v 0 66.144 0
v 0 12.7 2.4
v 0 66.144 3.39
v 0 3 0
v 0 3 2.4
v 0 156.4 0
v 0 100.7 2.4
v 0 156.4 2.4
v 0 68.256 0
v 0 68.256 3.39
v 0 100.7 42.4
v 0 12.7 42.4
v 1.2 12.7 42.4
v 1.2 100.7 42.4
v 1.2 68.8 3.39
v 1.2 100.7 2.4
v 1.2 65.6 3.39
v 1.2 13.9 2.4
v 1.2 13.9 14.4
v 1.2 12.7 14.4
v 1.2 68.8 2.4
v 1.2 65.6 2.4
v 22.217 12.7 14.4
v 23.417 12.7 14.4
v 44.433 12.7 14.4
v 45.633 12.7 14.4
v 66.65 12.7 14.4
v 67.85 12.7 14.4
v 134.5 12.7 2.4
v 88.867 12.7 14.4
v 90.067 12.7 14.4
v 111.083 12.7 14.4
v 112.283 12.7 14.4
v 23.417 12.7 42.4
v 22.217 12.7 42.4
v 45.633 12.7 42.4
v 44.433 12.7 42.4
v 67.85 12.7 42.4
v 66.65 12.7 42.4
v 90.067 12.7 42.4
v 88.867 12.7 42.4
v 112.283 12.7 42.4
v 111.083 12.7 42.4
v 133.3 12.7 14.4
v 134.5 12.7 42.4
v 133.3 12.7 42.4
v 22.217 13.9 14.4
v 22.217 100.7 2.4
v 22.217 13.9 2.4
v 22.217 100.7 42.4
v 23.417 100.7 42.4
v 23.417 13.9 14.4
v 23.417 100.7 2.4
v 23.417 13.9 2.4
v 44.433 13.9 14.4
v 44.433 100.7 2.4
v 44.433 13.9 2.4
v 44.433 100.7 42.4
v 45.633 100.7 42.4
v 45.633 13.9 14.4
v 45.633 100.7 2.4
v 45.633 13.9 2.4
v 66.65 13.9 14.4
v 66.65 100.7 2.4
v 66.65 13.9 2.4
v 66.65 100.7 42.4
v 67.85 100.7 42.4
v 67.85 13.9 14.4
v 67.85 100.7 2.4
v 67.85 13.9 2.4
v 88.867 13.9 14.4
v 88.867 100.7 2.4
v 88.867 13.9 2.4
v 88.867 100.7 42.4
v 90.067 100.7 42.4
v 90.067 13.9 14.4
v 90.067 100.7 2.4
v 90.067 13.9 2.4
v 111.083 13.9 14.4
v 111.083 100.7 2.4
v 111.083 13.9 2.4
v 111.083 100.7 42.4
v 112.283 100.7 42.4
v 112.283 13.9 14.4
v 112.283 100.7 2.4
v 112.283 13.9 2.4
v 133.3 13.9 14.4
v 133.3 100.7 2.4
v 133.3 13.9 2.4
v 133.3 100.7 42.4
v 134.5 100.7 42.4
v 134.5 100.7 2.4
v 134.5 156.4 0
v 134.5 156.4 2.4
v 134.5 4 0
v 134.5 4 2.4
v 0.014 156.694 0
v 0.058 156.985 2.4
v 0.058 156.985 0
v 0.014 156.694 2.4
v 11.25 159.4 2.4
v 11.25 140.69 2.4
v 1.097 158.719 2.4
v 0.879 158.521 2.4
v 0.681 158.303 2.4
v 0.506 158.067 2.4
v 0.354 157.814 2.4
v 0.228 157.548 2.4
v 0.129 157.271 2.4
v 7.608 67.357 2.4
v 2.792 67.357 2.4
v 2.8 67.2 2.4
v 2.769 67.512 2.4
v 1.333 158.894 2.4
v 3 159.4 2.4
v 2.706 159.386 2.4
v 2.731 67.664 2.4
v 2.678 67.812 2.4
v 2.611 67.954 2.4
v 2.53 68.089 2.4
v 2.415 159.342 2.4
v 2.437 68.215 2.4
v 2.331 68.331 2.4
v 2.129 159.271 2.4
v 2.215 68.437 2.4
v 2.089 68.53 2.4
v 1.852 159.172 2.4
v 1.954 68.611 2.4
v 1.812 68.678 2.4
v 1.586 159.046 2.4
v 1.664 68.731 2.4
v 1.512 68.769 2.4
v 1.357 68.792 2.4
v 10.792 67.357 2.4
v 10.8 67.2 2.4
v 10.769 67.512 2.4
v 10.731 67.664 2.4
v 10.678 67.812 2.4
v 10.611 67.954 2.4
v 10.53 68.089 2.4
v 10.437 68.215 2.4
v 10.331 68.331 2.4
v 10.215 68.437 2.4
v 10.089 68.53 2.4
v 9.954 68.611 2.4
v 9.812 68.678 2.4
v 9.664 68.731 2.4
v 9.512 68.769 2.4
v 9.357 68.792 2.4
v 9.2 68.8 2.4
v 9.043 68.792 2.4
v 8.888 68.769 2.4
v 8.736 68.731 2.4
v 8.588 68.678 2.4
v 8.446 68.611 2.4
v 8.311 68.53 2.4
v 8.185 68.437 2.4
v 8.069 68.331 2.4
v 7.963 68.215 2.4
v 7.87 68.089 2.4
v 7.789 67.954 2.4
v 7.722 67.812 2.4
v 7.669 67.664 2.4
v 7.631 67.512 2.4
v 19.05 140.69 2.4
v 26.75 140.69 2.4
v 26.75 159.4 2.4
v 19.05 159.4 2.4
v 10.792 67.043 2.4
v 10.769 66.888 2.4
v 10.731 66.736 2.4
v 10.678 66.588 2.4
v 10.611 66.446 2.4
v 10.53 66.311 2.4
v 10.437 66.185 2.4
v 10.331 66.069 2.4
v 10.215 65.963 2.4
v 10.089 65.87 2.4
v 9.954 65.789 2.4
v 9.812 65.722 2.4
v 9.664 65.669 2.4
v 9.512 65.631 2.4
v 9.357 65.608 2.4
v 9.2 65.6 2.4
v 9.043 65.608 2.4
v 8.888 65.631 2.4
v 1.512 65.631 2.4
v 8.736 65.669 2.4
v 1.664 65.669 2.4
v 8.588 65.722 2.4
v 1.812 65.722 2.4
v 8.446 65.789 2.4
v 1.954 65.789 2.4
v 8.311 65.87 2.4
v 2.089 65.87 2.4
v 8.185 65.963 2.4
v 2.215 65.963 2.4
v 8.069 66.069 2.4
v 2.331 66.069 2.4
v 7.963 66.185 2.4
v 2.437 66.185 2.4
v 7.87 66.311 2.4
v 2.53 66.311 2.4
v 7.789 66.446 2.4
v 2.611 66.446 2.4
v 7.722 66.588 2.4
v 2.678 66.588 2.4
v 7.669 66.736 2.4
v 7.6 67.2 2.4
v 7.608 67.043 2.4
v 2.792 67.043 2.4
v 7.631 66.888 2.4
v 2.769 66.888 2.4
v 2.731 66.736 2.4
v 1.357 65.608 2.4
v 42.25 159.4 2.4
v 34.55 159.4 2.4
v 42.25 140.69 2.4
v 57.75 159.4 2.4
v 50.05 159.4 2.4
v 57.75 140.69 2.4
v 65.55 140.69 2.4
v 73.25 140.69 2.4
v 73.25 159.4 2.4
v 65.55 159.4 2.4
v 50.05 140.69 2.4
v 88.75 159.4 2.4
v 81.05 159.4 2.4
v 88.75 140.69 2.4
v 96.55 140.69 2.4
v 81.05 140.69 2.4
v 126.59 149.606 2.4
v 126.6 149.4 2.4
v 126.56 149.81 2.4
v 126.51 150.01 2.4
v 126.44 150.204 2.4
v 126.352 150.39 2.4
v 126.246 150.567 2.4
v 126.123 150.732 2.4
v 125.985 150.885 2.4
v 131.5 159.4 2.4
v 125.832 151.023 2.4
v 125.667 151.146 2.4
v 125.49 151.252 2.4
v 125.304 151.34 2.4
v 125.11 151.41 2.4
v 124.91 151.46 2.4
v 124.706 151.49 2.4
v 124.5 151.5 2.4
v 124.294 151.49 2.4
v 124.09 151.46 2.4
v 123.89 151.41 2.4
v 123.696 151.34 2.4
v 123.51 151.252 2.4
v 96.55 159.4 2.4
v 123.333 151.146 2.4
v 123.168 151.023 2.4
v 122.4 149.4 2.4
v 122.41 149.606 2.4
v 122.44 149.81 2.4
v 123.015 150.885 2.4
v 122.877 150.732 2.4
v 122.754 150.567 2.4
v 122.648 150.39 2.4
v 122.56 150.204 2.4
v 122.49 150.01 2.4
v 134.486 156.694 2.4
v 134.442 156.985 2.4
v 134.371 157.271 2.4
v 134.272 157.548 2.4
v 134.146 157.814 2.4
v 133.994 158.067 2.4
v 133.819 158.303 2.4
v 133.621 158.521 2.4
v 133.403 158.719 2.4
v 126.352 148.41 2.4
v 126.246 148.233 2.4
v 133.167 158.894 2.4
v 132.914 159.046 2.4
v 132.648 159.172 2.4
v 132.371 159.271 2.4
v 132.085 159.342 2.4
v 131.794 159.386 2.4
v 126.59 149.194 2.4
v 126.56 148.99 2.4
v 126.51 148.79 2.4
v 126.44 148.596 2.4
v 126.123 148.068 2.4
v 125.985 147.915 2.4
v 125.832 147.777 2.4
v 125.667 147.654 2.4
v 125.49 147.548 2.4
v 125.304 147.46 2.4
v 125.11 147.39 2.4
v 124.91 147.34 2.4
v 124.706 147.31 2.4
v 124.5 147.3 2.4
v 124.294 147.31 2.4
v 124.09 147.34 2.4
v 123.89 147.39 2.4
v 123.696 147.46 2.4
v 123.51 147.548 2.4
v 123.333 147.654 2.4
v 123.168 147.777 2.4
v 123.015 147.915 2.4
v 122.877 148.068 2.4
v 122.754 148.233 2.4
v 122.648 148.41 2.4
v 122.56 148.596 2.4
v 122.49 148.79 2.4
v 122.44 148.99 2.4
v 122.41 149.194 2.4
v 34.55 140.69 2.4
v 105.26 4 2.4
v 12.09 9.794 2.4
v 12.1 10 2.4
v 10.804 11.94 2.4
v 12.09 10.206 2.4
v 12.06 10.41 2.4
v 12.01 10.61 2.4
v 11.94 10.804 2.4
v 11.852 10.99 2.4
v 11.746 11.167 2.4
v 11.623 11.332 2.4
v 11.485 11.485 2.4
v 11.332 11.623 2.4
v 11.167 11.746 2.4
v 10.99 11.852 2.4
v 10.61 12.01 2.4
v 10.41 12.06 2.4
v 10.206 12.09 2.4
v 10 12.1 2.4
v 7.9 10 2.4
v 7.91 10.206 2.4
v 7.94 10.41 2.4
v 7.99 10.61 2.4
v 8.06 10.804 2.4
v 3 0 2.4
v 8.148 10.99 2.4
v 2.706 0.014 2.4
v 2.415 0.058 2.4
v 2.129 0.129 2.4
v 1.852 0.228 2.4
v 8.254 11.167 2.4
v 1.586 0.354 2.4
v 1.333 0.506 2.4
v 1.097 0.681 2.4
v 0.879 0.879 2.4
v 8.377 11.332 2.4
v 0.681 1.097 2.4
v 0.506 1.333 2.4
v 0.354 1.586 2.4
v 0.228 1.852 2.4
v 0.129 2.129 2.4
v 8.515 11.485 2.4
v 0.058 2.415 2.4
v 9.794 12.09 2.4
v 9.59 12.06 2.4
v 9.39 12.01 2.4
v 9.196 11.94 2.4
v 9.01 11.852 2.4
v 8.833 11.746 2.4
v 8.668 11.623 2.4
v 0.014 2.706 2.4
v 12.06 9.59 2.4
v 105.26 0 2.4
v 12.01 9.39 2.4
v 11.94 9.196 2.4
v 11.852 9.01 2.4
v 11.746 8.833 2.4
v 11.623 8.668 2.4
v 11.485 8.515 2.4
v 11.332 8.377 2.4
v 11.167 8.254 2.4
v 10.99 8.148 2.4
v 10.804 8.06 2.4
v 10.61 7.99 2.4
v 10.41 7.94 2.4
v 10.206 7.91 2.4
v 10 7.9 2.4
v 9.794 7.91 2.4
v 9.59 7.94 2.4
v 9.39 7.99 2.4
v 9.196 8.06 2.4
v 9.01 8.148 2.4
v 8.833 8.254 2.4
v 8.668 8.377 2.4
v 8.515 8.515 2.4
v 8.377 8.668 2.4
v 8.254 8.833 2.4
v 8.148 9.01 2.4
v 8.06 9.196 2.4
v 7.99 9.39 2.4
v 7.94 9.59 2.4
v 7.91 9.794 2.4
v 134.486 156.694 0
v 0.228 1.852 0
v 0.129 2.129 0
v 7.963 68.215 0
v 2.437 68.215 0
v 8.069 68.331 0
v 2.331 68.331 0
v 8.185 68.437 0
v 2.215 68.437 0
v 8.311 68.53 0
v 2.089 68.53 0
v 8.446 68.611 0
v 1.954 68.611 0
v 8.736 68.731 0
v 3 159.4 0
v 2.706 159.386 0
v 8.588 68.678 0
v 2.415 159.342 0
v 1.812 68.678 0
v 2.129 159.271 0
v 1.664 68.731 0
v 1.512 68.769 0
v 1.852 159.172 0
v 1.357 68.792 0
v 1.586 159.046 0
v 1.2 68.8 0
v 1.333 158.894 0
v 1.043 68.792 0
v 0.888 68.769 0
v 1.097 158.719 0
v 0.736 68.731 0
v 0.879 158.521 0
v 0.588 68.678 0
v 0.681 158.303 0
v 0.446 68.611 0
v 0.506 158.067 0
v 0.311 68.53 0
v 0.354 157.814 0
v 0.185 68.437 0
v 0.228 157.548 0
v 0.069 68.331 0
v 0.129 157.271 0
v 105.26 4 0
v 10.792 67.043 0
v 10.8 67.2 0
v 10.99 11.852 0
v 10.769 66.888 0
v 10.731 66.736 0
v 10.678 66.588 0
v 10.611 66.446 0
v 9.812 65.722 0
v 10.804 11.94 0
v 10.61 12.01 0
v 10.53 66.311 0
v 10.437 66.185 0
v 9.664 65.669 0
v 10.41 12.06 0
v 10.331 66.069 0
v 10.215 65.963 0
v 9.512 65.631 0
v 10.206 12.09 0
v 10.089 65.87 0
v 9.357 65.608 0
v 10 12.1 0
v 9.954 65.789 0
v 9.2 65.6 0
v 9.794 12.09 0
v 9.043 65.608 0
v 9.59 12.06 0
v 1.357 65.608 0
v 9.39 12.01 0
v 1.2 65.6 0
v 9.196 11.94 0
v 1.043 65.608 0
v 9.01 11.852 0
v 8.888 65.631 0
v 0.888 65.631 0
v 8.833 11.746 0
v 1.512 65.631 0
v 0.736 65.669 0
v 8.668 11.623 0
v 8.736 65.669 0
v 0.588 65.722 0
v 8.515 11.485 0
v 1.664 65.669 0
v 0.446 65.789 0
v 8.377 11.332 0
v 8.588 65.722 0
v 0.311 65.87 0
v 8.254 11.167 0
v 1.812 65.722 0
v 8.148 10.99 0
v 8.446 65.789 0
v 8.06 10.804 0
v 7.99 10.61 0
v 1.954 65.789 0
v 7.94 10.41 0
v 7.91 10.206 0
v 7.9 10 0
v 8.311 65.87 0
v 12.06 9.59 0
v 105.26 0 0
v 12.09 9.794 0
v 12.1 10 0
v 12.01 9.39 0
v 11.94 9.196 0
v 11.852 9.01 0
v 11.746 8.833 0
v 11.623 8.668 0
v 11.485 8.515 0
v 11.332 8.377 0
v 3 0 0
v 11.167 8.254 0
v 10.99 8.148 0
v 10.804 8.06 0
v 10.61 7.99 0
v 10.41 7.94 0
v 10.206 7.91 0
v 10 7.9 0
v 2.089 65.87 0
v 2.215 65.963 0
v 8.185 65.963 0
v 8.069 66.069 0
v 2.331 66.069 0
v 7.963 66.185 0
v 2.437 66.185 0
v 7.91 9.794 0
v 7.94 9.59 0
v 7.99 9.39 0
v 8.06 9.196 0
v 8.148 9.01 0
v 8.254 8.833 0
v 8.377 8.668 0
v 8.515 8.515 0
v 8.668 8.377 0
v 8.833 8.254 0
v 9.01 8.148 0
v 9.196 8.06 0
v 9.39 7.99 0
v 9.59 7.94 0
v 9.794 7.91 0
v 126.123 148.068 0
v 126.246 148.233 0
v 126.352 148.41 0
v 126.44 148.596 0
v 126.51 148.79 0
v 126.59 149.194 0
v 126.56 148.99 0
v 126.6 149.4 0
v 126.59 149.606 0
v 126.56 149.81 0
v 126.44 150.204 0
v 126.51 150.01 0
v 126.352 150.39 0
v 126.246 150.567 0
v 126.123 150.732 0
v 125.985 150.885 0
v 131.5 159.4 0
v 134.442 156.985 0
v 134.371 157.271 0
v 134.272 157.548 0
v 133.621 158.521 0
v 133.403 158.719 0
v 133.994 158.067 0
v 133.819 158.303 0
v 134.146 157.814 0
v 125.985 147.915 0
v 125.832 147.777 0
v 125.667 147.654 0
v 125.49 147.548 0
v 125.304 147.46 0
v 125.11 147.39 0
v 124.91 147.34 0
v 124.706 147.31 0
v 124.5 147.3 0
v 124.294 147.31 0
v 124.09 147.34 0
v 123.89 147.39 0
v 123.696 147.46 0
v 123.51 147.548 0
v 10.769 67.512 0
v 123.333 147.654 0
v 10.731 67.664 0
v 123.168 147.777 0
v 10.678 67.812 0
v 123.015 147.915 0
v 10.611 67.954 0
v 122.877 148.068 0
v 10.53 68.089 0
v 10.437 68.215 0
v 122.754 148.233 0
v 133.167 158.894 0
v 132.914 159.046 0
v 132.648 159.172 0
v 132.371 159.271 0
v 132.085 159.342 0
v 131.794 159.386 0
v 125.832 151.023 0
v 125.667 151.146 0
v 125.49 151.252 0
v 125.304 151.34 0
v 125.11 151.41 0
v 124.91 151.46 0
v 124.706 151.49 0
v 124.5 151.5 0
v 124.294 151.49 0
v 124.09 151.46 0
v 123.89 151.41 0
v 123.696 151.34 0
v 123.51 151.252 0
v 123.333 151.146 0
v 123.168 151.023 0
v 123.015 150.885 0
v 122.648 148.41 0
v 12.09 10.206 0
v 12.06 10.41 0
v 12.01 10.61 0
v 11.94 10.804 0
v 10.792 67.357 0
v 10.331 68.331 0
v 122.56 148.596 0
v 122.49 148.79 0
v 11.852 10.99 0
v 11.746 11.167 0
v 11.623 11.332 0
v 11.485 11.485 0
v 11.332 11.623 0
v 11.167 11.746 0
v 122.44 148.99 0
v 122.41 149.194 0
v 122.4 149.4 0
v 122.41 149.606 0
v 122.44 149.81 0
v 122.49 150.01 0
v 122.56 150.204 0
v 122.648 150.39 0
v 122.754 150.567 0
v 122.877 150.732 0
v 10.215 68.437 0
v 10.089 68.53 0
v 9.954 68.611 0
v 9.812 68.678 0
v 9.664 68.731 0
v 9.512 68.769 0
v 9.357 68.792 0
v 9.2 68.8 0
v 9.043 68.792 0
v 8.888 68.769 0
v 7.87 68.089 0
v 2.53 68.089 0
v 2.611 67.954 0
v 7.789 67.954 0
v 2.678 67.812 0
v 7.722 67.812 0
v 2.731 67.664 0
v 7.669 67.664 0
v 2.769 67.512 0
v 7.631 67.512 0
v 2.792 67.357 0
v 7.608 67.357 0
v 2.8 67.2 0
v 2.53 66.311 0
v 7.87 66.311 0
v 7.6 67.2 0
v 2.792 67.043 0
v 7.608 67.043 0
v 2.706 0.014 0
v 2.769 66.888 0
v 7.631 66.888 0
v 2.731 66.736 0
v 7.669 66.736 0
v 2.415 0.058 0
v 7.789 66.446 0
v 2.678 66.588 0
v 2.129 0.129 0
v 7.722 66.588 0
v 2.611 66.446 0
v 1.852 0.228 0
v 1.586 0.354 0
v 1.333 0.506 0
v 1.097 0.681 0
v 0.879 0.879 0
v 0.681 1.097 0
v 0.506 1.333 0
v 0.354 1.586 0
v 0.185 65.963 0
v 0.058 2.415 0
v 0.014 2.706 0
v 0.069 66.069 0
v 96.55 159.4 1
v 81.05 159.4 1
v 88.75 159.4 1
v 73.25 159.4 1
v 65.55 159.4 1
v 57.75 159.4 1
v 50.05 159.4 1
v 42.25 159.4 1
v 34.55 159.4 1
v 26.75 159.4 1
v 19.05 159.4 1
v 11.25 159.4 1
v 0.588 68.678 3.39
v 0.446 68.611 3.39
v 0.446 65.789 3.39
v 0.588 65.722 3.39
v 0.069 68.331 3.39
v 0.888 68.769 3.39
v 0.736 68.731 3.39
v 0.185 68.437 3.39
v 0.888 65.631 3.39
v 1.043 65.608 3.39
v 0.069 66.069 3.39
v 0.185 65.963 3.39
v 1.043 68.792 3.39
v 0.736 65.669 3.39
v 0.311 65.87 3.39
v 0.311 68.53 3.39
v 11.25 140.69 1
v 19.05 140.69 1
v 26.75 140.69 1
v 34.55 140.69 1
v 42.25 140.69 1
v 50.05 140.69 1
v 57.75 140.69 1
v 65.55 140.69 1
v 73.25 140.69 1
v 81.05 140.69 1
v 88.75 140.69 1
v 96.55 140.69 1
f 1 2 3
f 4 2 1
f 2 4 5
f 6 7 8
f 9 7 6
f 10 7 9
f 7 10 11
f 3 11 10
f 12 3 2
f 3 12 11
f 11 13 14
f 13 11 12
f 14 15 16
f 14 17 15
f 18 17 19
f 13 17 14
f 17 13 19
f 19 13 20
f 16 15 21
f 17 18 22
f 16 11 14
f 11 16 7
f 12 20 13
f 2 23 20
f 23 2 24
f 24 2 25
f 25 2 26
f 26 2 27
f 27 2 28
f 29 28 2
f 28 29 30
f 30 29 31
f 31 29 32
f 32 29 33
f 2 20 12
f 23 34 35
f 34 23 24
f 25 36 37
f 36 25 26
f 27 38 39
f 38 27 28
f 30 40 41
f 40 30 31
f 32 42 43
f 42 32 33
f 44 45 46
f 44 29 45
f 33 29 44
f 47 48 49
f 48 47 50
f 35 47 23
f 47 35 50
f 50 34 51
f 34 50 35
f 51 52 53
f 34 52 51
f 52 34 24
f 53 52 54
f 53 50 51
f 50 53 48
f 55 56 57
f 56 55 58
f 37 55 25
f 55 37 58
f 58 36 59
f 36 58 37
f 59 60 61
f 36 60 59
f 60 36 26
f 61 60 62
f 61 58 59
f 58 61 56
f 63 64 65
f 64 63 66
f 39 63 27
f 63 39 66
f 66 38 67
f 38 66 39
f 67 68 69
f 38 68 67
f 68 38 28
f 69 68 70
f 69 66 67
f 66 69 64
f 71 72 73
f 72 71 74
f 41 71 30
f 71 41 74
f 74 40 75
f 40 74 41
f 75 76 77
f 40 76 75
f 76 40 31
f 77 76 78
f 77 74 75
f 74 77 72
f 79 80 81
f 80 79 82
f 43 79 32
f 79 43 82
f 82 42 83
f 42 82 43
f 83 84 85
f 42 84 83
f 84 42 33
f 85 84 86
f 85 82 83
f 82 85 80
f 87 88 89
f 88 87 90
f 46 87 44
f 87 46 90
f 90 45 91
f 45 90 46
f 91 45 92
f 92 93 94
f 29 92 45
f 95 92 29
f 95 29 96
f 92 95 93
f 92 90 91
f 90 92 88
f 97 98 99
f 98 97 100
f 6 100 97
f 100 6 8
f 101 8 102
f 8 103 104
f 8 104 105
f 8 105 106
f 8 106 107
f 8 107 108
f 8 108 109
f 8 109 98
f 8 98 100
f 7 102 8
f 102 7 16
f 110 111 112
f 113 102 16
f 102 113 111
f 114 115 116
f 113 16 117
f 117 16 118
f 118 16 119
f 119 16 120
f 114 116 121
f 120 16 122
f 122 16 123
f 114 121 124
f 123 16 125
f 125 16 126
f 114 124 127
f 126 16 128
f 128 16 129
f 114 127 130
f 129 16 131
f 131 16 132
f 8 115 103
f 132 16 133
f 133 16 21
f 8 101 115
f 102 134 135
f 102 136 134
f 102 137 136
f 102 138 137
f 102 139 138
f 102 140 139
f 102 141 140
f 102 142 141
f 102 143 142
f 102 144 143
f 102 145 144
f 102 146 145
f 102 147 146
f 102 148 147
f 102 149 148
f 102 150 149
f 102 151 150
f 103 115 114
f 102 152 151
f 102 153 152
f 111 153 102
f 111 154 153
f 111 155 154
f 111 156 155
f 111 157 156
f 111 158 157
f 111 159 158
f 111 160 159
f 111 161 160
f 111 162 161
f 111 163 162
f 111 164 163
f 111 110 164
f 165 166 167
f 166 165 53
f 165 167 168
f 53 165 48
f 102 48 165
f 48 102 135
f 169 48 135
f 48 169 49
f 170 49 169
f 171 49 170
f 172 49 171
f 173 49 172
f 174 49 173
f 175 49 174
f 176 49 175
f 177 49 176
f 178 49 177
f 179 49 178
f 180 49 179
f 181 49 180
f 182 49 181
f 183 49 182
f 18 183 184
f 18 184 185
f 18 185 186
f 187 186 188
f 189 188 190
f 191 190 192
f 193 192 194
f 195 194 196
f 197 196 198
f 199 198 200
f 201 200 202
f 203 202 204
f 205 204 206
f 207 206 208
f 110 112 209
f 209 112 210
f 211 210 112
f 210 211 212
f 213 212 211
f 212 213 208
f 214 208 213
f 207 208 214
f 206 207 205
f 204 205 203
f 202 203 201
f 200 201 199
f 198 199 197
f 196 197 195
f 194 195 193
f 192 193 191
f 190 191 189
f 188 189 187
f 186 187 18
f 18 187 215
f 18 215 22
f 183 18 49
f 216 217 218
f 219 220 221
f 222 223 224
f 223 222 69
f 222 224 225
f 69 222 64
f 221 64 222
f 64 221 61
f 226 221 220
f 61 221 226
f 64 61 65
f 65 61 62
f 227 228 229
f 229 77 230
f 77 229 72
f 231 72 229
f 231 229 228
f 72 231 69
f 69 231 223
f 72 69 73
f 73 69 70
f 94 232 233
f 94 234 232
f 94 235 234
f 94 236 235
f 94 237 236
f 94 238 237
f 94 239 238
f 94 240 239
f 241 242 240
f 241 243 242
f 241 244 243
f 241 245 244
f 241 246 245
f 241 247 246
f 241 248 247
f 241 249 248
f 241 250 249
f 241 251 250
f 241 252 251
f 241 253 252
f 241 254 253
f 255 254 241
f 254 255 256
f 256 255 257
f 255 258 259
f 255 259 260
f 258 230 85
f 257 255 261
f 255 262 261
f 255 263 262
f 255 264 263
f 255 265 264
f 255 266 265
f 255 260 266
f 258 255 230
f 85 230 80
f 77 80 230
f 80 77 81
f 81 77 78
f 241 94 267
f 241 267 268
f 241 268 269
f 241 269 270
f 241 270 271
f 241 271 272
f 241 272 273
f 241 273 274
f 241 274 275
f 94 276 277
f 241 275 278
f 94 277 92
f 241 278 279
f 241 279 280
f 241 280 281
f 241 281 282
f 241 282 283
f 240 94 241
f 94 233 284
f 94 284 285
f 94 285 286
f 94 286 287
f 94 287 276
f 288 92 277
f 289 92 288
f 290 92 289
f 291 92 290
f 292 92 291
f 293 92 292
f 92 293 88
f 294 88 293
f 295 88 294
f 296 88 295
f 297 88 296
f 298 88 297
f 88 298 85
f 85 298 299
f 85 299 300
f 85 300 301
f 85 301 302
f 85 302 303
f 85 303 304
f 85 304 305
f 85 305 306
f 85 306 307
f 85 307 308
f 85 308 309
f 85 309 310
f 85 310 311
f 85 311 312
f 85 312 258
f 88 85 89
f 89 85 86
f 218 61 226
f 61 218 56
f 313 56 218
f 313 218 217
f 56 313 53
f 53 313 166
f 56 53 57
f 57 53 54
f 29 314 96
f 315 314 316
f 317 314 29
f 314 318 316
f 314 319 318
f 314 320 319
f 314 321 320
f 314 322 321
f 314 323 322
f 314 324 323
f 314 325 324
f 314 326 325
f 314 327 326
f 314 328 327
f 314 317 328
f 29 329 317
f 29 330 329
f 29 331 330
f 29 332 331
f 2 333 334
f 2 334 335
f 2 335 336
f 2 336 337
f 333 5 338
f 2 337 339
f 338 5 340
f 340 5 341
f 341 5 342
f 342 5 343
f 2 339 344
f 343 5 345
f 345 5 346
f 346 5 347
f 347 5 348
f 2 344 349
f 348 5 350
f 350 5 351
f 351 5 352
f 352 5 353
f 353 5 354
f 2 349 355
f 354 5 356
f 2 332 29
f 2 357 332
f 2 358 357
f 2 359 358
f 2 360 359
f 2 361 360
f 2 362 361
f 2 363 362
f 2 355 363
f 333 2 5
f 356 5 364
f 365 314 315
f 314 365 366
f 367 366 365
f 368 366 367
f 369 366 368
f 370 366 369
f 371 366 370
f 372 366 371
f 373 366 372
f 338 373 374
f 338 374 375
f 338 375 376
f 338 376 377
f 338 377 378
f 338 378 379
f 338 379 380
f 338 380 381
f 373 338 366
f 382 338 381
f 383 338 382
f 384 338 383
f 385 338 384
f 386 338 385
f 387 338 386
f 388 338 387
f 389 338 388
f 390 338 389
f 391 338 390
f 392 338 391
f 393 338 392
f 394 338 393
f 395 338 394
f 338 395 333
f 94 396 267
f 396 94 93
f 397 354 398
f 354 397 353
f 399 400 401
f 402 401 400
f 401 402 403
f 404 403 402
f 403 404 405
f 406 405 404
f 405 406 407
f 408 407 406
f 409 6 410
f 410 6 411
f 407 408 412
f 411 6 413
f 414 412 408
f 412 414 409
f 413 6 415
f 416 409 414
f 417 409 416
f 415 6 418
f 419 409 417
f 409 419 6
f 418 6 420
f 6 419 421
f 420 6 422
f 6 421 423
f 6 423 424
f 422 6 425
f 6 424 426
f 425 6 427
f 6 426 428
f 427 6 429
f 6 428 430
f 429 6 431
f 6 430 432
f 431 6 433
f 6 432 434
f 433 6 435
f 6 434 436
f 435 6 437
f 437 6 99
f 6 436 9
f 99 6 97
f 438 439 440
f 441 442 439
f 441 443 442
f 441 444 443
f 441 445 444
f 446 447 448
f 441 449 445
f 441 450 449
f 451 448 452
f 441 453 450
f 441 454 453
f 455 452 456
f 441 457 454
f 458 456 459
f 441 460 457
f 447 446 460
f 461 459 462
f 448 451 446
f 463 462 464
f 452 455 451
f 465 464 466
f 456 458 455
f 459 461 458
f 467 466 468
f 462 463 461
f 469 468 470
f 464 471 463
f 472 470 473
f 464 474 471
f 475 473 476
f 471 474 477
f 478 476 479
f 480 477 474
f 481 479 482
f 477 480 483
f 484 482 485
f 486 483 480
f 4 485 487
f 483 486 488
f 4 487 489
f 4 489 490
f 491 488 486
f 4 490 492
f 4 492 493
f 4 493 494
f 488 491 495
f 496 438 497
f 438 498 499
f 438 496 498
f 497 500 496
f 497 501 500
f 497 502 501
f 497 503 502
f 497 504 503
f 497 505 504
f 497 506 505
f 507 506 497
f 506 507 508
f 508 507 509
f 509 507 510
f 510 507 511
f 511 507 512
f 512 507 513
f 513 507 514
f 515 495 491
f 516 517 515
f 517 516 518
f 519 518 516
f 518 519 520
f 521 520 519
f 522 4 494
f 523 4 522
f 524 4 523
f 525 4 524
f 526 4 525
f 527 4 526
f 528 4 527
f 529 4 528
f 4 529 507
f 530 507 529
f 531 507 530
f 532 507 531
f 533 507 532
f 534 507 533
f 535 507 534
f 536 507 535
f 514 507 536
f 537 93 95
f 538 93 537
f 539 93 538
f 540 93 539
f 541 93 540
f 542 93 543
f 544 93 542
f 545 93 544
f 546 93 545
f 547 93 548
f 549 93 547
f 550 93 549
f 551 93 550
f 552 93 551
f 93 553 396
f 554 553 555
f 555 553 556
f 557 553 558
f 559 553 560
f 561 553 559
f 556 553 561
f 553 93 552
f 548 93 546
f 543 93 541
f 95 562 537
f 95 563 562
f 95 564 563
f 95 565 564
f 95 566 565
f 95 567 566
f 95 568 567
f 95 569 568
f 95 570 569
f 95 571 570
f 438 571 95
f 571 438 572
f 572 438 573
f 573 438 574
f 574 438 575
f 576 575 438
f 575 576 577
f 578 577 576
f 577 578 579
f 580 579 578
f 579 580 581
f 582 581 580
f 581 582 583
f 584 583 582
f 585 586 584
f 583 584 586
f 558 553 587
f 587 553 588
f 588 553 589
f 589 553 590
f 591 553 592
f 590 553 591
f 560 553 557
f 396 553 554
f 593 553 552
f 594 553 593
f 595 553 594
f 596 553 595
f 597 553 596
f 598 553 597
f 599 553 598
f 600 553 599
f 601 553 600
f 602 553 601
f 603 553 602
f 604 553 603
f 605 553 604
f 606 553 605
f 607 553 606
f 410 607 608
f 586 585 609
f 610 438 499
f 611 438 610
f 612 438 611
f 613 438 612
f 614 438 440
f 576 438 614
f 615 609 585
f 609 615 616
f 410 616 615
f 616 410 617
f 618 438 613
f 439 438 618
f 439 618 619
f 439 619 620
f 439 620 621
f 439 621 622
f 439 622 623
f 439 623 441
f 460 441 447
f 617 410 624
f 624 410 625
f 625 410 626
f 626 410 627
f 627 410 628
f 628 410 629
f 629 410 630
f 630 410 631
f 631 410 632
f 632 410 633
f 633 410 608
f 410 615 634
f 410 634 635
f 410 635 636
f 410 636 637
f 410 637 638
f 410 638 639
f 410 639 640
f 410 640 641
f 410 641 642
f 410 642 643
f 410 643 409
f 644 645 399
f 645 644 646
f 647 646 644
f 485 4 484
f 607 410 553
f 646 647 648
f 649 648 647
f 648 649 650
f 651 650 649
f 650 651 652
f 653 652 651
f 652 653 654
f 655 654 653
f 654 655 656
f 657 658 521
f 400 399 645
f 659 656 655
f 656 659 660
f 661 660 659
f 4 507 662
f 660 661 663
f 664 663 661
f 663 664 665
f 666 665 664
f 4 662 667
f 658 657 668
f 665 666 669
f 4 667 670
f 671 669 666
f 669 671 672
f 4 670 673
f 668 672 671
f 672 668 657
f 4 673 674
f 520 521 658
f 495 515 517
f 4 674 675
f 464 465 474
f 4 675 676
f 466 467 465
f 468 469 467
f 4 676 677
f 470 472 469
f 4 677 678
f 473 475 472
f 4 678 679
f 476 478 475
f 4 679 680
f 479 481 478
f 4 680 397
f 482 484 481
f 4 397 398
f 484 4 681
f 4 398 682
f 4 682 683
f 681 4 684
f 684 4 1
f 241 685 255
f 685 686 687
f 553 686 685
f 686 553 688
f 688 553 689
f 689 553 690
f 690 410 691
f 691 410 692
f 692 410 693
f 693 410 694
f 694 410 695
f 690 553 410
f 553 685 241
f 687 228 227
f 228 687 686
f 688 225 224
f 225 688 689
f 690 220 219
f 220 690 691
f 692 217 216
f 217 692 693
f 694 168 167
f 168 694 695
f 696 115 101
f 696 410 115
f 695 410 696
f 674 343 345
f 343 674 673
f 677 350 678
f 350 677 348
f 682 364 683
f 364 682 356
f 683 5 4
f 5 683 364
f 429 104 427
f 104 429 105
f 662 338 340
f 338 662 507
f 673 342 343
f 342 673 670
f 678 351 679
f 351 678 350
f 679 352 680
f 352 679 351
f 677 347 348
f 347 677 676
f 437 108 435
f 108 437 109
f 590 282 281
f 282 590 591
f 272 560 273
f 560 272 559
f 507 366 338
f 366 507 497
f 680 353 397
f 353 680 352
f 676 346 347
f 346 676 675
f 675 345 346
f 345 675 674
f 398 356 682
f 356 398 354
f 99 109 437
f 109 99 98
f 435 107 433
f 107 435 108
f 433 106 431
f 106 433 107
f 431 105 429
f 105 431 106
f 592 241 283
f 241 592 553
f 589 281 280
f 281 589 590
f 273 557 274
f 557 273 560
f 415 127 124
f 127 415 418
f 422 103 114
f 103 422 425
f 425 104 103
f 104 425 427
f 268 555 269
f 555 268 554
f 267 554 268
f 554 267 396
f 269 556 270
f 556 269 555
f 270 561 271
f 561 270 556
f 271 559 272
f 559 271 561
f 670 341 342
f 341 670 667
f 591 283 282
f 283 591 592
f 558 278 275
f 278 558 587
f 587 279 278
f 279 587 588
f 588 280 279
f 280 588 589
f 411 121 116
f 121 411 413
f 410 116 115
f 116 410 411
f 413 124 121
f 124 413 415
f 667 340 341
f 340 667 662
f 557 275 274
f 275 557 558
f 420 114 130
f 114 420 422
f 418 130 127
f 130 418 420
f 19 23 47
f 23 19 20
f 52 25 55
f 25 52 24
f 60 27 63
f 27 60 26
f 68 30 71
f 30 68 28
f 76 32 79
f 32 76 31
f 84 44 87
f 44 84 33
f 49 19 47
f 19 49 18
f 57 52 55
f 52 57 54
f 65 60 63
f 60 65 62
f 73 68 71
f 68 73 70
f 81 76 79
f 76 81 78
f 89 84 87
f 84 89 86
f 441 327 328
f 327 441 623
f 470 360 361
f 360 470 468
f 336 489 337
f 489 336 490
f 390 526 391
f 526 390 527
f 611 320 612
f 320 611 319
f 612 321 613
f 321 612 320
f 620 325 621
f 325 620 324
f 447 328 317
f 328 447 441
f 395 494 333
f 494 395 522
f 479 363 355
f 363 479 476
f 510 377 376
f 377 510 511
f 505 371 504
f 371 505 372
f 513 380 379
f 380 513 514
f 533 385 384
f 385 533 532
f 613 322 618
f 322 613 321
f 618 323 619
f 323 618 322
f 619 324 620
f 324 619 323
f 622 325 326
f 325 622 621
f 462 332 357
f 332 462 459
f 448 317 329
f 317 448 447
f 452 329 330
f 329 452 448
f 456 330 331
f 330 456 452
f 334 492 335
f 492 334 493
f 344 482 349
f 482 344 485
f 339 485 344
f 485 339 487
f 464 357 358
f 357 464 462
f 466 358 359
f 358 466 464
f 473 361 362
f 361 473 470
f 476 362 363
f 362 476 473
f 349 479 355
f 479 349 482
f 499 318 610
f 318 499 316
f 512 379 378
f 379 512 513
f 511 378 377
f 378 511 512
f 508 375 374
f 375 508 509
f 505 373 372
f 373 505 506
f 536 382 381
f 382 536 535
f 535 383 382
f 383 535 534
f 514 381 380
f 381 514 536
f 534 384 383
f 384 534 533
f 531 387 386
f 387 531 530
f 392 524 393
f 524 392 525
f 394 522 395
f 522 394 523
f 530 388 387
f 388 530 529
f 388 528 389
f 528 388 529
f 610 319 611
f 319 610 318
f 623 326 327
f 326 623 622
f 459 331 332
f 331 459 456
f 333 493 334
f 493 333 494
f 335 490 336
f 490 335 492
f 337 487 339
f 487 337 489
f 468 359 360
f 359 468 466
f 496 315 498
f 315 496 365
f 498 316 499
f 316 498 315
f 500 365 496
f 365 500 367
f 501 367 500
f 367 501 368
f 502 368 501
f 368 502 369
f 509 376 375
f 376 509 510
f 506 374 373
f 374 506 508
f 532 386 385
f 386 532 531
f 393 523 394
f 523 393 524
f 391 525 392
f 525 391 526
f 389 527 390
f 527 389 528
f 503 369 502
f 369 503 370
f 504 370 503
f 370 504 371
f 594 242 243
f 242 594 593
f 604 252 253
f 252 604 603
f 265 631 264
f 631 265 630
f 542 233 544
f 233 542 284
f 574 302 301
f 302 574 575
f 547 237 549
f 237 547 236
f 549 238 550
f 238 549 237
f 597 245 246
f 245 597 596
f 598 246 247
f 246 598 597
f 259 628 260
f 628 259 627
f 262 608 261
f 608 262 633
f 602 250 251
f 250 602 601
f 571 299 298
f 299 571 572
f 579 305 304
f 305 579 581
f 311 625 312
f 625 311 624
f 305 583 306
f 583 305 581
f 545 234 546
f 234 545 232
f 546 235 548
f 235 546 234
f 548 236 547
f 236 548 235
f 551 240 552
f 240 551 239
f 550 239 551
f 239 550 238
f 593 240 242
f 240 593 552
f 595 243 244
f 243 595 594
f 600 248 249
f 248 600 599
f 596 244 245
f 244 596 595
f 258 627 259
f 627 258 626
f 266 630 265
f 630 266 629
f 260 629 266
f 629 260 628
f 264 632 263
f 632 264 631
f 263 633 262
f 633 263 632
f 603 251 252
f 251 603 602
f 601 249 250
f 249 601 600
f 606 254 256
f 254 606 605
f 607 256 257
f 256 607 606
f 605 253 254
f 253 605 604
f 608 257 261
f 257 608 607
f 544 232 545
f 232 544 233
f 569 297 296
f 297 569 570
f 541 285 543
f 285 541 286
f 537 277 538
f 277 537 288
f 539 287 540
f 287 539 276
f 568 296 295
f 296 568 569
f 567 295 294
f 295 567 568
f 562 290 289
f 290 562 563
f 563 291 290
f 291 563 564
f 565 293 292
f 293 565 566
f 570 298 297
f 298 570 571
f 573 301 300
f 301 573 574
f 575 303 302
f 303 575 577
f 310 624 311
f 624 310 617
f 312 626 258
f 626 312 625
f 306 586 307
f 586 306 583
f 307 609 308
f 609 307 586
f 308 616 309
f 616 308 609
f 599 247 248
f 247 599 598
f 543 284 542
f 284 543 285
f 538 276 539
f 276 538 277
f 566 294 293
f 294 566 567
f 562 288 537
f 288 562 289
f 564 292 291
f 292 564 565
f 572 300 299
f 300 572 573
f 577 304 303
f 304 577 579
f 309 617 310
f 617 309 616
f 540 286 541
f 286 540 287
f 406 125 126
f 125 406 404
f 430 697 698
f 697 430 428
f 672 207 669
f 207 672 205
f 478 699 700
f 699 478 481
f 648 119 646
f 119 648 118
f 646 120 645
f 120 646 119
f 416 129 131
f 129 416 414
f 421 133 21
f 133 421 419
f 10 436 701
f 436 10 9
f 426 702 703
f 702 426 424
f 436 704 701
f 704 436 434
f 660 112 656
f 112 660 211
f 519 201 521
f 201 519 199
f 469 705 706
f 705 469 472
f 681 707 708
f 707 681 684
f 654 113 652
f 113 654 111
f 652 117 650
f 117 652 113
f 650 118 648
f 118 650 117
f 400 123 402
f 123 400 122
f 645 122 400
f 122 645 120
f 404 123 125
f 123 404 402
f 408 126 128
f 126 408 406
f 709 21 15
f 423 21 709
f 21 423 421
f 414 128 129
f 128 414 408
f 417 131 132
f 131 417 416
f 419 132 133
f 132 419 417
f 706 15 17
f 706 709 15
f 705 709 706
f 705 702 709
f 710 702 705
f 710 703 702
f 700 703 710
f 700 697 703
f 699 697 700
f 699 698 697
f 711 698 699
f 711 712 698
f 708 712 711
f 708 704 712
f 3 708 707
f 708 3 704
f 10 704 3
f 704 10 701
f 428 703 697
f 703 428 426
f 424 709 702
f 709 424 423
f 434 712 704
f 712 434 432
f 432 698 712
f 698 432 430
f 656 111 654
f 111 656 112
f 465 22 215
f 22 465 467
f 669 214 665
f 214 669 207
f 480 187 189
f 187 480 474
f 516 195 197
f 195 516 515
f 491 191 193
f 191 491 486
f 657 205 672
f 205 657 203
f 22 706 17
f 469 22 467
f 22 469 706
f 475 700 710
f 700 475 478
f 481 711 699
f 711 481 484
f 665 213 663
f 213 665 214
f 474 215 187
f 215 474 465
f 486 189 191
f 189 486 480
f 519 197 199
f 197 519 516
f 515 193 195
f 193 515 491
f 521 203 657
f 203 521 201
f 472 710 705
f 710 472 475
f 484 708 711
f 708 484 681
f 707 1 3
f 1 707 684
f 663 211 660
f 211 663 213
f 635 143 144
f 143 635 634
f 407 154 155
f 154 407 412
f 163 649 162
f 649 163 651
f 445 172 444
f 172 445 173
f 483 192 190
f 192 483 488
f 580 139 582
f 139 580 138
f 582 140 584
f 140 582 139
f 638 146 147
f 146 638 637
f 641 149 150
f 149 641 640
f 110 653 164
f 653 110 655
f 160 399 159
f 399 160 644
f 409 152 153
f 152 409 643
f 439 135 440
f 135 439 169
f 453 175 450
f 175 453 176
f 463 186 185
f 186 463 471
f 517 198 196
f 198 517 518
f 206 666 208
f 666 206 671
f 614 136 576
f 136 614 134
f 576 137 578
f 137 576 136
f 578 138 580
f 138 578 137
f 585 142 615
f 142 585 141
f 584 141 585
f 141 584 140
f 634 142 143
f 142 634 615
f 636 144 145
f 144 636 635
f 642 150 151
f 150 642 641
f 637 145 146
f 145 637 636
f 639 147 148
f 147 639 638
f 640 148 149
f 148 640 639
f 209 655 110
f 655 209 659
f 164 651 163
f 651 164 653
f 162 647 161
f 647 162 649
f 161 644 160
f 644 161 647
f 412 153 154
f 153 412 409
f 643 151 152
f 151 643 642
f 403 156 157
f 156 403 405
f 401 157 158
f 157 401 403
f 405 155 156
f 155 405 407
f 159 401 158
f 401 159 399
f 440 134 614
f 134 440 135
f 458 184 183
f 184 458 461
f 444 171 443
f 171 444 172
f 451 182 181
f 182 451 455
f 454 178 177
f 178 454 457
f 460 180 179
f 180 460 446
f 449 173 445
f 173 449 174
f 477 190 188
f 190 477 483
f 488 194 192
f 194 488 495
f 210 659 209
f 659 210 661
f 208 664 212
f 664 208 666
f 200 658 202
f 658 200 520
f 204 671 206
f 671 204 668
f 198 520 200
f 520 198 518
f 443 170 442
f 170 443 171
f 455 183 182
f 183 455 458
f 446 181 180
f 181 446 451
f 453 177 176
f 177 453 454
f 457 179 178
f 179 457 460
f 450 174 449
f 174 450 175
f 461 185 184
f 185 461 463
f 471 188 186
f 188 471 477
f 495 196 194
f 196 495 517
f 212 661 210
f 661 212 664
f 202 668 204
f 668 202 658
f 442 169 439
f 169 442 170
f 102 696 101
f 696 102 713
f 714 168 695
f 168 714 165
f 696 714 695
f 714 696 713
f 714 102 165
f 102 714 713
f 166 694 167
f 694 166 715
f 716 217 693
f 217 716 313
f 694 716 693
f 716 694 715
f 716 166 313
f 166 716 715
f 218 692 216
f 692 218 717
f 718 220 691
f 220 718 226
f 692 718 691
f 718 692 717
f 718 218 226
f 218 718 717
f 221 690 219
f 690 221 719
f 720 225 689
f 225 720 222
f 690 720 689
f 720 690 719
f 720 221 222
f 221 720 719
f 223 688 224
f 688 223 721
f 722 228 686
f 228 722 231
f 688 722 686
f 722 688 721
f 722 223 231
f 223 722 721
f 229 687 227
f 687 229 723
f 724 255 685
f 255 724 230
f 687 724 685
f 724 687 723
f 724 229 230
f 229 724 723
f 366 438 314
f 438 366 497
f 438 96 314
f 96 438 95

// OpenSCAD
// file: ../generated/config.scad
// GENERATED by tools/build.py from config/rack.yaml — do not edit.

FRAME_W = 670.6;
FRAME_D = 225.335;
FRAME_TILT = 20;
FRAME_ROW_Y0 = 25;
FRAME_BASE_H = 80;
FRAME_TOP_Z = 410;
FRAME_PANEL_T = 7.4;
FRAME_PANEL_CLEAR = 0.2;
ROW_IDS = ["A", "B"];
ROW_HEIGHTS = [165, 165];
ROW_LAYOUTS = [[1, 1, 1, 1], [1, 1, 1, 1]];
BAY_PITCH = 165.8;
CARRIER_W = 158;
CARRIER_D = 210;
CARRIER_BOTTOM = 2.5;
CARRIER_WALL = 2;
CARRIER_STANDOFF = 5;
CARRIER_DECK = 3;
CARRIER_FASCIA = 2.5;
CARRIER_WALL_H = 20.1;
CARRIER_PLENUM = 23.1;
PCB_TO_FLOOR = 14;
CAM_MOUNT = [109, 45, 30];
CAM_LENS = [64, 27.6];
DRAWER_D = 208;
DRAWER_W = 142;
DRAWER_X0 = 8;
DRAWER_TRAVEL = 140;
DRAWER_GUIDE_W = 7.5;
DRAWER_CLEAR = 0.5;
DRAWER_BOTTOM = 2.5;
DRAWER_WALL = 2;
DRAWER_WALL_H = 16;
DRAWER_FRONT_H = 41;
DRAWER_FRONT_T = 4;
DRAWER_PLATE_GAP = [0.3, 3.2];
DISPLAY_GLASS = [52.36, 28.8];
DISPLAY_PCB = [51, 26.6];
DISPLAY_AT = [82, 8.5];
DISPLAY_SH = [12.3, 25.8];
DISPLAY_FIT = [0.3, 8.6, 3.5, 2];
DISPLAY_FRAME = [2.2, 2.5];
DRAWER_REAR_BAY = 42;
DRAWER_FLANGE = [3, 3];
DRAWER_MAGNET = [6, 3];
DRAWER_DETENT = "printed";
DATA_PORT_X = [80];
PLATE_T = 5;
HEX_PITCH = 10;
HEX_AF = 7.2;
HEX_U = 0.4;
HEX_CLEAR = 0.1;
HEX_HOLES = [[22.25, 10.418], [32.25, 10.418], [42.25, 10.418], [52.25, 10.418], [62.25, 10.418], [72.25, 10.418], [82.25, 10.418], [92.25, 10.418], [102.25, 10.418], [112.25, 10.418], [122.25, 10.418], [7.25, 19.078], [17.25, 19.078], [27.25, 19.078], [37.25, 19.078], [47.25, 19.078], [57.25, 19.078], [67.25, 19.078], [77.25, 19.078], [87.25, 19.078], [97.25, 19.078], [107.25, 19.078], [117.25, 19.078], [127.25, 19.078], [12.25, 27.738], [22.25, 27.738], [32.25, 27.738], [42.25, 27.738], [52.25, 27.738], [62.25, 27.738], [72.25, 27.738], [82.25, 27.738], [92.25, 27.738], [102.25, 27.738], [112.25, 27.738], [122.25, 27.738], [7.25, 36.399], [17.25, 36.399], [27.25, 36.399], [37.25, 36.399], [47.25, 36.399], [57.25, 36.399], [67.25, 36.399], [77.25, 36.399], [87.25, 36.399], [97.25, 36.399], [107.25, 36.399], [117.25, 36.399], [127.25, 36.399], [12.25, 45.059], [22.25, 45.059], [32.25, 45.059], [42.25, 45.059], [52.25, 45.059], [62.25, 45.059], [72.25, 45.059], [82.25, 45.059], [92.25, 45.059], [102.25, 45.059], [112.25, 45.059], [122.25, 45.059], [7.25, 53.719], [17.25, 53.719], [27.25, 53.719], [37.25, 53.719], [47.25, 53.719], [57.25, 53.719], [67.25, 53.719], [77.25, 53.719], [87.25, 53.719], [97.25, 53.719], [107.25, 53.719], [117.25, 53.719], [127.25, 53.719], [22.25, 62.379], [32.25, 62.379], [42.25, 62.379], [52.25, 62.379], [62.25, 62.379], [72.25, 62.379], [82.25, 62.379], [92.25, 62.379], [102.25, 62.379], [112.25, 62.379], [122.25, 62.379], [27.25, 71.04], [37.25, 71.04], [47.25, 71.04], [57.25, 71.04], [67.25, 71.04], [77.25, 71.04], [87.25, 71.04], [97.25, 71.04], [107.25, 71.04], [32.25, 79.7], [42.25, 79.7], [52.25, 79.7], [62.25, 79.7], [72.25, 79.7], [82.25, 79.7], [92.25, 79.7], [102.25, 79.7], [27.25, 88.36], [37.25, 88.36], [47.25, 88.36], [57.25, 88.36], [67.25, 88.36], [77.25, 88.36], [87.25, 88.36], [97.25, 88.36], [107.25, 88.36], [12.25, 97.021], [22.25, 97.021], [32.25, 97.021], [42.25, 97.021], [52.25, 97.021], [62.25, 97.021], [72.25, 97.021], [82.25, 97.021], [92.25, 97.021], [102.25, 97.021], [112.25, 97.021], [122.25, 97.021], [7.25, 105.681], [17.25, 105.681], [27.25, 105.681], [37.25, 105.681], [47.25, 105.681], [57.25, 105.681], [67.25, 105.681], [77.25, 105.681], [87.25, 105.681], [97.25, 105.681], [107.25, 105.681], [117.25, 105.681], [127.25, 105.681], [12.25, 114.341], [22.25, 114.341], [32.25, 114.341], [42.25, 114.341], [52.25, 114.341], [62.25, 114.341], [72.25, 114.341], [82.25, 114.341], [92.25, 114.341], [102.25, 114.341], [112.25, 114.341], [122.25, 114.341], [7.25, 123.001], [17.25, 123.001], [27.25, 123.001], [37.25, 123.001], [47.25, 123.001], [57.25, 123.001], [67.25, 123.001], [77.25, 123.001], [87.25, 123.001], [97.25, 123.001], [107.25, 123.001], [117.25, 123.001], [127.25, 123.001], [12.25, 131.662], [22.25, 131.662], [32.25, 131.662], [42.25, 131.662], [52.25, 131.662], [62.25, 131.662], [72.25, 131.662], [82.25, 131.662], [92.25, 131.662], [102.25, 131.662], [112.25, 131.662], [122.25, 131.662], [107.25, 140.322], [117.25, 140.322], [127.25, 140.322], [112.25, 148.982]];
PLATE_PORT_RECESSES = [[11.25, 140.7, 19.05, 159.4], [26.75, 140.7, 34.55, 159.4], [42.25, 140.7, 50.05, 159.4], [57.75, 140.7, 65.55, 159.4], [73.25, 140.7, 81.05, 159.4], [88.75, 140.7, 96.55, 159.4]];
PLATE_PORT_RECESS_DEPTH = 3.5;
SLOT_BIN_FLOOR = 2.4;
SLOT_BIN_RECESS = 1.4;
SLOT_BIN_WALL = 1.2;
SLOT_BIN_FRONT = [17, 12];
SLOT_BIN_DIVIDERS = [105, 40];
SLOT_BIN_LANES = [[1.2, 22.217], [23.417, 44.433], [45.633, 66.65], [67.85, 88.867], [90.067, 111.083], [112.283, 133.3]];
HEX_ROWS = [[1, 10.418], [2, 19.078], [3, 27.738], [4, 36.399], [5, 45.059], [6, 53.719], [7, 62.379], [8, 71.04], [9, 79.7], [10, 88.36], [11, 97.021], [12, 105.681], [13, 114.341], [14, 123.001], [15, 131.662], [16, 140.322], [17, 148.982]];
PEG_STOP = [3.55, 15, 4.6, 7, 7.6];
PEG_CAM = [3, 6.75, 270, 20];
CHAIN_INNER = [7, 7];
CHAIN_OUTER = [13.5, 10.2];
CHAIN_R = 18;
CHAIN_PITCH = 16;
CHAIN_END_HOLES = [8, 4];
CHAIN_FIXED = [100, 87];
CHAIN_MOVING_X = 136;
CHAIN_FOOT_Y = 172;
CHAIN_MOVING_Y = 157;
CHAIN_END_LENGTH = 26;
CHAIN_BEND_Y = 183;
NODE_SIZE = [74, 90];
NODE_T = 1.6;
NODE_HOLES = [[3.5, 13.5], [70.5, 13.5], [3.5, 86.5], [70.5, 86.5]];
NODE_X0 = 4;
NODE_FRONT_Y = 3;
NODE_PCB_TOP = 9.1;
NODE_FRONT = [32, 12, 50];
NODE_PWR_Y = 73;
NODE_DATA_Y = 30;
NODE_AUX = [69.1, 50.6];
NODE_CAM = [59, 17.2];
DATA_PCB_SIZE = [40, 17];
DATA_PCB_T = 1.6;
DATA_PCB_HOLES = [[2.6, 13.5], [37.5, 4]];
DATA_PCB_USB = 30.5;
DATA_PCB_PH = 14.4;
DATA_X4_SIZE = [100, 37];
DATA_X4_X0 = 15;
DATA_X4_HOLES = [[3.2, 16.5], [38.7, 16.5], [81.4, 16.3]];
DATA_X4_USB = [11, 29, 47, 65];
DATA_X4_LEAD = [95.1, 20];
DATA_V2_SIZE = [100, 70];
DATA_V2_X0 = 4;
DATA_V2_T = 1.6;
DATA_V2_FACE_Y = 7.4;
DATA_V2_USB = [28.95, 44.45, 59.95, 75.45];
DATA_V2_USB_ROT = [90, 90, 90, 90];
DATA_V2_HDR_X = [22, 40, 58, 76];
DATA_V2_NOTCH_X = [38.5, 69.5];
DATA_V2_NOTCH = [3.4, 6.5];
DATA_V2_TEE = [-2.2, 2.5];
DATA_X6_SIZE = [100, 70];
DATA_X6_X0 = 4;
DATA_X6_T = 1.6;
DATA_X6_FACE_Y = 7.4;
DATA_X6_USB = [13.45, 28.95, 44.45, 59.95, 75.45, 90.95];
DATA_X6_USB_ROT = [90, 90, 90, 90, 90, 90];
DATA_X6_NOTCH_X = [38.5, 69.5];
DATA_X6_NOTCH = [3.4, 6.5];
DATA_X6_TEE = [-2.2, 2.5];
DATA_X6_CORNER = [0, 0];
POD_PCB_SIZE = [40, 27];
POD_PCB_T = 1.6;
POD_PCB_HOLES = [[2.6, 13], [26.5, 23.5]];
POD_LEDS = [5, 11, 17, 23];
POD_LED_Y = 3.2;
POD_LEAD_Y = 13;
POD_HEADER = [13, 21];
HUB_SIZE = [76, 100];
HUB_HOLES = [[3.5, 3.5], [72, 4], [4, 93.5], [72, 86]];
HUB_T = 1.6;
HUB_X0 = 3.6;
HUB_FRONT_GAP = 1.2;
HUB_Z = 19;
HUB_ROWS = [81, 63.5, 46, 28.5];
HUB_LEDS = [11, 23, 35, 47, 55.6, 61.6];
HUB_USB = 70;
HUB_PD = 62;
HUB_BUTTONS = [[11.5, 10], [11.5, 16.5]];
PBOX_COLUMN = 0;
PBOX_SIZE = [84, 108, 35];
PBOX_WALL = 2.4;
PBOX_X = 3;
SA_PD = [30, 21, 1.6, 3.2];
SA_FEET = [10, 3];
// file: ../lib/common.scad
// Shared helpers for every printed part of hw-testing-rack.
include <../generated/config.scad>

$fn = $preview ? 32 : 64;
EPS = 0.01;

// Heat-set inserts (Ruthex-style).  Hole Ø is the recommended pre-hole.
INSERT_M3 = [4.0, 5.7];    // [hole Ø, depth]
INSERT_M2 = [3.2, 4.0];
INSERT_M25 = [3.6, 4.5];
M3_CLEAR = 3.4;
M5_CLEAR = 5.5;
M3_HEAD = [6.0, 3.0];      // DIN 912 / ISO 7380 head Ø × height (button head ~5.7)

module rbox(size, r = 2, center = false) {
    // Box with rounded vertical edges.
    translate(center ? [-size[0] / 2, -size[1] / 2, 0] : [0, 0, 0])
        hull() for (x = [r, size[0] - r], y = [r, size[1] - r])
            translate([x, y, 0]) cylinder(r = r, h = size[2]);
}

module rslot(len, w, h) {
    // Stadium-shaped slot along X, centred on the origin.
    hull() for (x = [-(len - w) / 2, (len - w) / 2]) translate([x, 0, 0]) cylinder(d = w, h = h);
}

module insert_hole(spec = INSERT_M3) {
    // Pocket for a heat-set insert, opening at z=0 and going -Z.
    translate([0, 0, -spec[1]]) cylinder(d = spec[0], h = spec[1] + EPS);
    translate([0, 0, -0.6]) cylinder(d1 = spec[0], d2 = spec[0] + 0.8, h = 0.6 + EPS);
}

module screw_through(d = M3_CLEAR, h = 20, head = M3_HEAD, counterbore = true) {
    // Clearance hole along +Z from z=0, with an optional counterbore at z=h.
    translate([0, 0, -EPS]) cylinder(d = d, h = h + 2 * EPS);
    if (counterbore) translate([0, 0, h - head[1]]) cylinder(d = head[0] + 0.4, h = head[1] + EPS);
}

module magnet_pocket(d = DRAWER_MAGNET[0], t = DRAWER_MAGNET[1]) {
    // Press-fit/glue pocket for a disc magnet, opening at z=0 going -Z.
    translate([0, 0, -t - 0.2]) cylinder(d = d + 0.25, h = t + 0.2 + EPS);
}

module label_text(txt, size = 6, depth = 0.6, font = "Liberation Sans:style=Bold") {
    linear_extrude(depth) text(txt, size = size, font = font, halign = "center", valign = "center");
}
// main file
// Slot bin — a dense bay's "porte-revues": one printed part in the board plate's place (population › plate: slots).
//
//   openscad -o slot_bin.stl parts/slot_bin.scad
//
// Its boards stand on edge in six equal lanes, USB to the port wall, lane k (from the left) for the DATA ×6's port k
// (config/rack.yaml › drawer.slot_bin).  The rack's tilt slides each board forwards to the front stop; a thin one leans
// on a divider.  Behind the dividers, a cable zone where each short straight cable fans in to its port.  It sits on the
// drawer floor in the plate's footprint: the plate's locating pins into its floor, the RESET/BOOT pin holes through it,
// the display lead's notch in its front right, the ports' plugs over recesses in its rear edge.  It does not turn
// round.  Plate coords (lib/carrier.scad): origin at its front-left on the drawer floor, y to the port wall.
// Print: as it stands, PETG, 2 walls, no support.
include <../lib/carrier.scad>

FLOOR = SLOT_BIN_FLOOR;
T = SLOT_BIN_WALL;
FRONT_Y = SLOT_BIN_FRONT[0] - PLATE_Y0;           // its front stop's front face, plate y
FRONT_H = SLOT_BIN_FRONT[1];
DIV_Y1 = SLOT_BIN_DIVIDERS[0] - PLATE_Y0;         // the dividers' rear end, plate y
DIV_H = SLOT_BIN_DIVIDERS[1];
EPS = 0.01;

function button_holes() = [for (k = [NODE_RESET, NODE_BOOT]) node_xy(k) - [DRAWER_X0 + PLATE_X0, PLATE_Y0]];
WALLS_X = concat([0], [for (l = SLOT_BIN_LANES) l[1]]);   // the end walls' and dividers' left faces

module slot_bin() {
    difference() {
        union() {
            rbox([PLATE_W, PLATE_D, FLOOR], r = 3);
            translate([0, FRONT_Y, FLOOR - EPS]) cube([PLATE_W, T, FRONT_H + EPS]);
            for (x = WALLS_X) translate([x, FRONT_Y, FLOOR - EPS]) cube([T, DIV_Y1 - FRONT_Y, DIV_H + EPS]);
        }
        // the drawer's locating pins (2.2 tall) into the floor
        for (p = plate_pins()) translate([p[0], p[1], -EPS]) cylinder(d = 4.2, h = FLOOR + 1);
        // pin holes over the node's RESET and BOOT, as in the plate
        for (q = button_holes()) translate(concat(q, [-EPS])) cylinder(d = 3.2, h = FLOOR + 1);
        // the DATA ports' plugs: the plate's recesses, shallower (tools/rackcfg.py › plate_port_recesses)
        for (r = PLATE_PORT_RECESSES) translate([r[0], r[1] - EPS, FLOOR - SLOT_BIN_RECESS])
            cube([r[2] - r[0], r[3] - r[1] + 2 * EPS, SLOT_BIN_RECESS + EPS]);
        // the front display's lead drops into its front-right corner (lib/carrier.scad › PLATE_NOTCH)
        if (HAS_DISPLAY) translate([PLATE_NOTCH[0], -1, -EPS]) cube([PLATE_W, PLATE_NOTCH[1] + 1, FLOOR + 2 * EPS]);
    }
}

slot_bin();
